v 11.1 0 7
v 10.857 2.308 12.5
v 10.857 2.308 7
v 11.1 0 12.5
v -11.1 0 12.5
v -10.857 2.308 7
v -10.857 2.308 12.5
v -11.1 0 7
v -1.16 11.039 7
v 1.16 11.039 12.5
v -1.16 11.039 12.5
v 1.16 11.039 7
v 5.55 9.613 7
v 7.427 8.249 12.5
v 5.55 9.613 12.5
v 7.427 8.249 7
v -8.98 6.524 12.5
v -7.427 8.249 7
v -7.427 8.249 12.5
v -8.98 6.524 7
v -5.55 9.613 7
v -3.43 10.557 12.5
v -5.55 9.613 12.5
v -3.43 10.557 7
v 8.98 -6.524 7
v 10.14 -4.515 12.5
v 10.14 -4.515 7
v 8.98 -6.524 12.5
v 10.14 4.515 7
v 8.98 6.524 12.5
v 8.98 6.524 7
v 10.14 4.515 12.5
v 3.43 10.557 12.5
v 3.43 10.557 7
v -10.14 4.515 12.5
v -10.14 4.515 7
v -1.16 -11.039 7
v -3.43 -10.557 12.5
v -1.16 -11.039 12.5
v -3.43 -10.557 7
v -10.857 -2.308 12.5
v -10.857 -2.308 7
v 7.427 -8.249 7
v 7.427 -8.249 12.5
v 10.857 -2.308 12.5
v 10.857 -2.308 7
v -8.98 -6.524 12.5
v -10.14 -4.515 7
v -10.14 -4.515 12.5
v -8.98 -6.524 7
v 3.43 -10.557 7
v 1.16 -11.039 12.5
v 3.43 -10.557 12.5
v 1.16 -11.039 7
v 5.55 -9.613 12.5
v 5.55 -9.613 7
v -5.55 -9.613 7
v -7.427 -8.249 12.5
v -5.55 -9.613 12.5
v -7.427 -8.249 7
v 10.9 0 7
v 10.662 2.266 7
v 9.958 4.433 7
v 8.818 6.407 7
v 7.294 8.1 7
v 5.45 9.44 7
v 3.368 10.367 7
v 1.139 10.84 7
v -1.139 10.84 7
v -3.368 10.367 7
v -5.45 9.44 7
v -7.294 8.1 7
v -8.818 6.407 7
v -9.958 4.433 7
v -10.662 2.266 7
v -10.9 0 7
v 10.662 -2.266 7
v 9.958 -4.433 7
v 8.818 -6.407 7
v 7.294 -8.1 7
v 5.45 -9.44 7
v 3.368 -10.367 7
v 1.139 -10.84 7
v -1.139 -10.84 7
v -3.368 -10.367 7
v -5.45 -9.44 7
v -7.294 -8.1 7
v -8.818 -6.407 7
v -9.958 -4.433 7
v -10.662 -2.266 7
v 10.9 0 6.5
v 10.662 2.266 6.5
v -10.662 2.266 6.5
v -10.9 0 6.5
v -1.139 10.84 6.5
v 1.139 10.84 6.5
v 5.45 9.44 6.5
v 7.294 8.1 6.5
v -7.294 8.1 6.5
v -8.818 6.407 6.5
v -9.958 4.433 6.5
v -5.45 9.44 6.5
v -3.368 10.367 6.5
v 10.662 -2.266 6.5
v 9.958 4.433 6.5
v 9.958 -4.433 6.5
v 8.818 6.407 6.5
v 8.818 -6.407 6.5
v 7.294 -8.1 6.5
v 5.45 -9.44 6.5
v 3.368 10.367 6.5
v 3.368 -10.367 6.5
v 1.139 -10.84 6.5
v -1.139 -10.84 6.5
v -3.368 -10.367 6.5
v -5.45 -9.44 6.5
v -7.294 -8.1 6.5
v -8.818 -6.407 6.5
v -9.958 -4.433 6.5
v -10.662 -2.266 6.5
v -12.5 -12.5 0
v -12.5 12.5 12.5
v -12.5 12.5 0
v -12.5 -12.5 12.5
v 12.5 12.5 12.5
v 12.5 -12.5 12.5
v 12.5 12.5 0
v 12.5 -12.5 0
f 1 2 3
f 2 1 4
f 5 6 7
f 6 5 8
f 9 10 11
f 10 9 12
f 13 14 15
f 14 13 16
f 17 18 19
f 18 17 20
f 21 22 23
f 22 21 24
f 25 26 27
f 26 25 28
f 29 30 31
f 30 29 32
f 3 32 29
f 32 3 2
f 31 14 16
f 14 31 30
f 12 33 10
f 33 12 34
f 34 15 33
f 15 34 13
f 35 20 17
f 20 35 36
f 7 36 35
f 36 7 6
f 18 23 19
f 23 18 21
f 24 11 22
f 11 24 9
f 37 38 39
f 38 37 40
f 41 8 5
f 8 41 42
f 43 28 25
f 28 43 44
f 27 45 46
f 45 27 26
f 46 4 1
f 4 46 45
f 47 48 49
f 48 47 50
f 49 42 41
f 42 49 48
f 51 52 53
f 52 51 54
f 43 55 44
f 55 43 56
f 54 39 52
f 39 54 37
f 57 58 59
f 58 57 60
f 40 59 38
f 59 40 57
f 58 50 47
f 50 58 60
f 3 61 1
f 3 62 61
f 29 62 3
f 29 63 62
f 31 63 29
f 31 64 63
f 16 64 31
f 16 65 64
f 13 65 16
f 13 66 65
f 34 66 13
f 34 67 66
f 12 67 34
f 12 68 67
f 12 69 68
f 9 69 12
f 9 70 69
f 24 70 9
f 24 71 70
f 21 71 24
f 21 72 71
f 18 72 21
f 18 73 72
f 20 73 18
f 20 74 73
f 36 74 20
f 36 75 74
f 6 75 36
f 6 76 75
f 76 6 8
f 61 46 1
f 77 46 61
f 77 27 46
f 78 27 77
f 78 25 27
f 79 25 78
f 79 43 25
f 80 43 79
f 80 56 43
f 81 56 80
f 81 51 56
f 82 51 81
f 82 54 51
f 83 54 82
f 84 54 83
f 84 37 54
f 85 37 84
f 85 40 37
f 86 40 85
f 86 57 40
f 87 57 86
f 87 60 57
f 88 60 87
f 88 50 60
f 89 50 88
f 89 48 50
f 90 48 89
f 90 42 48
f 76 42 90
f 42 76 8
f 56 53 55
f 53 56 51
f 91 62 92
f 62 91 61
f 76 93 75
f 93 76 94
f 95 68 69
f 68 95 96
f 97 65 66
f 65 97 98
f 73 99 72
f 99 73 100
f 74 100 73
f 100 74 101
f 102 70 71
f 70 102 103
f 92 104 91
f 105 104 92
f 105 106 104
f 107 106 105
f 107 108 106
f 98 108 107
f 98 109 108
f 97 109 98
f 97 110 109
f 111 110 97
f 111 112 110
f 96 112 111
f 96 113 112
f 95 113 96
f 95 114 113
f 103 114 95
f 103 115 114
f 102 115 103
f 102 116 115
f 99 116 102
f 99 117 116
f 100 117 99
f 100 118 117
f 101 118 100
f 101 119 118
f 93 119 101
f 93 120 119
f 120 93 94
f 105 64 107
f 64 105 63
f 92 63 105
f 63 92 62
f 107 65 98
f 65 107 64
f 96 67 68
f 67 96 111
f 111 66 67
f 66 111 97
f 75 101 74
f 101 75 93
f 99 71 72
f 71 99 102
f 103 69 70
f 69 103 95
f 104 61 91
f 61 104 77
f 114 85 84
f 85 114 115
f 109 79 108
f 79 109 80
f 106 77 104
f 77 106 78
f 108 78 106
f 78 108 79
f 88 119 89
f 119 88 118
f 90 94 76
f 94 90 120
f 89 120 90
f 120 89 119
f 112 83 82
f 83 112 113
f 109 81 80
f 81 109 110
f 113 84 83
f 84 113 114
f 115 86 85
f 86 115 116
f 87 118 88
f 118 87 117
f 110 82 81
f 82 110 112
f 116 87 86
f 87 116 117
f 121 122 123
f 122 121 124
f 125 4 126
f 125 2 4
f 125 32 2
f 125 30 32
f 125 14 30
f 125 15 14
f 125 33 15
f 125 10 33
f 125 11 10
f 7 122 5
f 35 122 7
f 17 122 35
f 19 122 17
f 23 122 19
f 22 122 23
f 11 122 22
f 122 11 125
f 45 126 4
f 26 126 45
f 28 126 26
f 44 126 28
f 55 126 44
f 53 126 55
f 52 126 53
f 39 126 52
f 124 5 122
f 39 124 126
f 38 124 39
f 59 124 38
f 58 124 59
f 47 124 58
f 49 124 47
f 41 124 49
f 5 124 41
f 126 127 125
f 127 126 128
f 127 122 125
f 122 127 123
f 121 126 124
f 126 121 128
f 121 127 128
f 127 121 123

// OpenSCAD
// Generated by SolidPython 1.1.3 on 2023-12-28 20:42:28


difference() {
	cube(center = true, size = [25, 25, 25]);
	union() {
		translate(v = [0, 0, 7]) {
			cylinder(h = 18, r = 11.1000000000);
		}
		translate(v = [0, 0, 6.5000000000]) {
			cylinder(h = 20, r = 10.9000000000);
		}
	}
	translate(v = [0, 0, -150]) {
		cube(center = true, size = [300, 300, 300]);
	}
}
/***********************************************
*********      SolidPython code:      **********
************************************************
 
#! /usr/bin/env python3
from solid.objects import *
from solid.solidpython import *
import sys
from math import cos, radians, sin, pi, tau
from pathlib import Path

from euclid3 import Point2, Point3, Vector3

from solid import *
from solid.utils import *

from typing import Set, Sequence, List, Callable, Optional, Union, Iterable, Tuple

def bisect_floor(input) -> OpenSCADObject:
	size = 300
	floor = translate([0,0,-150])(cube([300,300,300],center = True))
	return input - floor

if __name__ == "__main__":
	out_dir = sys.argv[1] if len(sys.argv) > 1 else Path(__file__).parent
	hole = translate([0,0,7])(cylinder(r = 11.1, h = 18))
	hole +=  translate([0,0,6.5])(cylinder(r = 10.9, h = 20))

	mount = cube([25,25,25],center=True) - (hole)
	a = bisect_floor(mount)
#	a = hole
	file_out = scad_render_to_file(a,  out_dir=out_dir, include_orig_code=True)
	print(f"{__file__}: SCAD file written to: \n{file_out}")
 
 
************************************************/
